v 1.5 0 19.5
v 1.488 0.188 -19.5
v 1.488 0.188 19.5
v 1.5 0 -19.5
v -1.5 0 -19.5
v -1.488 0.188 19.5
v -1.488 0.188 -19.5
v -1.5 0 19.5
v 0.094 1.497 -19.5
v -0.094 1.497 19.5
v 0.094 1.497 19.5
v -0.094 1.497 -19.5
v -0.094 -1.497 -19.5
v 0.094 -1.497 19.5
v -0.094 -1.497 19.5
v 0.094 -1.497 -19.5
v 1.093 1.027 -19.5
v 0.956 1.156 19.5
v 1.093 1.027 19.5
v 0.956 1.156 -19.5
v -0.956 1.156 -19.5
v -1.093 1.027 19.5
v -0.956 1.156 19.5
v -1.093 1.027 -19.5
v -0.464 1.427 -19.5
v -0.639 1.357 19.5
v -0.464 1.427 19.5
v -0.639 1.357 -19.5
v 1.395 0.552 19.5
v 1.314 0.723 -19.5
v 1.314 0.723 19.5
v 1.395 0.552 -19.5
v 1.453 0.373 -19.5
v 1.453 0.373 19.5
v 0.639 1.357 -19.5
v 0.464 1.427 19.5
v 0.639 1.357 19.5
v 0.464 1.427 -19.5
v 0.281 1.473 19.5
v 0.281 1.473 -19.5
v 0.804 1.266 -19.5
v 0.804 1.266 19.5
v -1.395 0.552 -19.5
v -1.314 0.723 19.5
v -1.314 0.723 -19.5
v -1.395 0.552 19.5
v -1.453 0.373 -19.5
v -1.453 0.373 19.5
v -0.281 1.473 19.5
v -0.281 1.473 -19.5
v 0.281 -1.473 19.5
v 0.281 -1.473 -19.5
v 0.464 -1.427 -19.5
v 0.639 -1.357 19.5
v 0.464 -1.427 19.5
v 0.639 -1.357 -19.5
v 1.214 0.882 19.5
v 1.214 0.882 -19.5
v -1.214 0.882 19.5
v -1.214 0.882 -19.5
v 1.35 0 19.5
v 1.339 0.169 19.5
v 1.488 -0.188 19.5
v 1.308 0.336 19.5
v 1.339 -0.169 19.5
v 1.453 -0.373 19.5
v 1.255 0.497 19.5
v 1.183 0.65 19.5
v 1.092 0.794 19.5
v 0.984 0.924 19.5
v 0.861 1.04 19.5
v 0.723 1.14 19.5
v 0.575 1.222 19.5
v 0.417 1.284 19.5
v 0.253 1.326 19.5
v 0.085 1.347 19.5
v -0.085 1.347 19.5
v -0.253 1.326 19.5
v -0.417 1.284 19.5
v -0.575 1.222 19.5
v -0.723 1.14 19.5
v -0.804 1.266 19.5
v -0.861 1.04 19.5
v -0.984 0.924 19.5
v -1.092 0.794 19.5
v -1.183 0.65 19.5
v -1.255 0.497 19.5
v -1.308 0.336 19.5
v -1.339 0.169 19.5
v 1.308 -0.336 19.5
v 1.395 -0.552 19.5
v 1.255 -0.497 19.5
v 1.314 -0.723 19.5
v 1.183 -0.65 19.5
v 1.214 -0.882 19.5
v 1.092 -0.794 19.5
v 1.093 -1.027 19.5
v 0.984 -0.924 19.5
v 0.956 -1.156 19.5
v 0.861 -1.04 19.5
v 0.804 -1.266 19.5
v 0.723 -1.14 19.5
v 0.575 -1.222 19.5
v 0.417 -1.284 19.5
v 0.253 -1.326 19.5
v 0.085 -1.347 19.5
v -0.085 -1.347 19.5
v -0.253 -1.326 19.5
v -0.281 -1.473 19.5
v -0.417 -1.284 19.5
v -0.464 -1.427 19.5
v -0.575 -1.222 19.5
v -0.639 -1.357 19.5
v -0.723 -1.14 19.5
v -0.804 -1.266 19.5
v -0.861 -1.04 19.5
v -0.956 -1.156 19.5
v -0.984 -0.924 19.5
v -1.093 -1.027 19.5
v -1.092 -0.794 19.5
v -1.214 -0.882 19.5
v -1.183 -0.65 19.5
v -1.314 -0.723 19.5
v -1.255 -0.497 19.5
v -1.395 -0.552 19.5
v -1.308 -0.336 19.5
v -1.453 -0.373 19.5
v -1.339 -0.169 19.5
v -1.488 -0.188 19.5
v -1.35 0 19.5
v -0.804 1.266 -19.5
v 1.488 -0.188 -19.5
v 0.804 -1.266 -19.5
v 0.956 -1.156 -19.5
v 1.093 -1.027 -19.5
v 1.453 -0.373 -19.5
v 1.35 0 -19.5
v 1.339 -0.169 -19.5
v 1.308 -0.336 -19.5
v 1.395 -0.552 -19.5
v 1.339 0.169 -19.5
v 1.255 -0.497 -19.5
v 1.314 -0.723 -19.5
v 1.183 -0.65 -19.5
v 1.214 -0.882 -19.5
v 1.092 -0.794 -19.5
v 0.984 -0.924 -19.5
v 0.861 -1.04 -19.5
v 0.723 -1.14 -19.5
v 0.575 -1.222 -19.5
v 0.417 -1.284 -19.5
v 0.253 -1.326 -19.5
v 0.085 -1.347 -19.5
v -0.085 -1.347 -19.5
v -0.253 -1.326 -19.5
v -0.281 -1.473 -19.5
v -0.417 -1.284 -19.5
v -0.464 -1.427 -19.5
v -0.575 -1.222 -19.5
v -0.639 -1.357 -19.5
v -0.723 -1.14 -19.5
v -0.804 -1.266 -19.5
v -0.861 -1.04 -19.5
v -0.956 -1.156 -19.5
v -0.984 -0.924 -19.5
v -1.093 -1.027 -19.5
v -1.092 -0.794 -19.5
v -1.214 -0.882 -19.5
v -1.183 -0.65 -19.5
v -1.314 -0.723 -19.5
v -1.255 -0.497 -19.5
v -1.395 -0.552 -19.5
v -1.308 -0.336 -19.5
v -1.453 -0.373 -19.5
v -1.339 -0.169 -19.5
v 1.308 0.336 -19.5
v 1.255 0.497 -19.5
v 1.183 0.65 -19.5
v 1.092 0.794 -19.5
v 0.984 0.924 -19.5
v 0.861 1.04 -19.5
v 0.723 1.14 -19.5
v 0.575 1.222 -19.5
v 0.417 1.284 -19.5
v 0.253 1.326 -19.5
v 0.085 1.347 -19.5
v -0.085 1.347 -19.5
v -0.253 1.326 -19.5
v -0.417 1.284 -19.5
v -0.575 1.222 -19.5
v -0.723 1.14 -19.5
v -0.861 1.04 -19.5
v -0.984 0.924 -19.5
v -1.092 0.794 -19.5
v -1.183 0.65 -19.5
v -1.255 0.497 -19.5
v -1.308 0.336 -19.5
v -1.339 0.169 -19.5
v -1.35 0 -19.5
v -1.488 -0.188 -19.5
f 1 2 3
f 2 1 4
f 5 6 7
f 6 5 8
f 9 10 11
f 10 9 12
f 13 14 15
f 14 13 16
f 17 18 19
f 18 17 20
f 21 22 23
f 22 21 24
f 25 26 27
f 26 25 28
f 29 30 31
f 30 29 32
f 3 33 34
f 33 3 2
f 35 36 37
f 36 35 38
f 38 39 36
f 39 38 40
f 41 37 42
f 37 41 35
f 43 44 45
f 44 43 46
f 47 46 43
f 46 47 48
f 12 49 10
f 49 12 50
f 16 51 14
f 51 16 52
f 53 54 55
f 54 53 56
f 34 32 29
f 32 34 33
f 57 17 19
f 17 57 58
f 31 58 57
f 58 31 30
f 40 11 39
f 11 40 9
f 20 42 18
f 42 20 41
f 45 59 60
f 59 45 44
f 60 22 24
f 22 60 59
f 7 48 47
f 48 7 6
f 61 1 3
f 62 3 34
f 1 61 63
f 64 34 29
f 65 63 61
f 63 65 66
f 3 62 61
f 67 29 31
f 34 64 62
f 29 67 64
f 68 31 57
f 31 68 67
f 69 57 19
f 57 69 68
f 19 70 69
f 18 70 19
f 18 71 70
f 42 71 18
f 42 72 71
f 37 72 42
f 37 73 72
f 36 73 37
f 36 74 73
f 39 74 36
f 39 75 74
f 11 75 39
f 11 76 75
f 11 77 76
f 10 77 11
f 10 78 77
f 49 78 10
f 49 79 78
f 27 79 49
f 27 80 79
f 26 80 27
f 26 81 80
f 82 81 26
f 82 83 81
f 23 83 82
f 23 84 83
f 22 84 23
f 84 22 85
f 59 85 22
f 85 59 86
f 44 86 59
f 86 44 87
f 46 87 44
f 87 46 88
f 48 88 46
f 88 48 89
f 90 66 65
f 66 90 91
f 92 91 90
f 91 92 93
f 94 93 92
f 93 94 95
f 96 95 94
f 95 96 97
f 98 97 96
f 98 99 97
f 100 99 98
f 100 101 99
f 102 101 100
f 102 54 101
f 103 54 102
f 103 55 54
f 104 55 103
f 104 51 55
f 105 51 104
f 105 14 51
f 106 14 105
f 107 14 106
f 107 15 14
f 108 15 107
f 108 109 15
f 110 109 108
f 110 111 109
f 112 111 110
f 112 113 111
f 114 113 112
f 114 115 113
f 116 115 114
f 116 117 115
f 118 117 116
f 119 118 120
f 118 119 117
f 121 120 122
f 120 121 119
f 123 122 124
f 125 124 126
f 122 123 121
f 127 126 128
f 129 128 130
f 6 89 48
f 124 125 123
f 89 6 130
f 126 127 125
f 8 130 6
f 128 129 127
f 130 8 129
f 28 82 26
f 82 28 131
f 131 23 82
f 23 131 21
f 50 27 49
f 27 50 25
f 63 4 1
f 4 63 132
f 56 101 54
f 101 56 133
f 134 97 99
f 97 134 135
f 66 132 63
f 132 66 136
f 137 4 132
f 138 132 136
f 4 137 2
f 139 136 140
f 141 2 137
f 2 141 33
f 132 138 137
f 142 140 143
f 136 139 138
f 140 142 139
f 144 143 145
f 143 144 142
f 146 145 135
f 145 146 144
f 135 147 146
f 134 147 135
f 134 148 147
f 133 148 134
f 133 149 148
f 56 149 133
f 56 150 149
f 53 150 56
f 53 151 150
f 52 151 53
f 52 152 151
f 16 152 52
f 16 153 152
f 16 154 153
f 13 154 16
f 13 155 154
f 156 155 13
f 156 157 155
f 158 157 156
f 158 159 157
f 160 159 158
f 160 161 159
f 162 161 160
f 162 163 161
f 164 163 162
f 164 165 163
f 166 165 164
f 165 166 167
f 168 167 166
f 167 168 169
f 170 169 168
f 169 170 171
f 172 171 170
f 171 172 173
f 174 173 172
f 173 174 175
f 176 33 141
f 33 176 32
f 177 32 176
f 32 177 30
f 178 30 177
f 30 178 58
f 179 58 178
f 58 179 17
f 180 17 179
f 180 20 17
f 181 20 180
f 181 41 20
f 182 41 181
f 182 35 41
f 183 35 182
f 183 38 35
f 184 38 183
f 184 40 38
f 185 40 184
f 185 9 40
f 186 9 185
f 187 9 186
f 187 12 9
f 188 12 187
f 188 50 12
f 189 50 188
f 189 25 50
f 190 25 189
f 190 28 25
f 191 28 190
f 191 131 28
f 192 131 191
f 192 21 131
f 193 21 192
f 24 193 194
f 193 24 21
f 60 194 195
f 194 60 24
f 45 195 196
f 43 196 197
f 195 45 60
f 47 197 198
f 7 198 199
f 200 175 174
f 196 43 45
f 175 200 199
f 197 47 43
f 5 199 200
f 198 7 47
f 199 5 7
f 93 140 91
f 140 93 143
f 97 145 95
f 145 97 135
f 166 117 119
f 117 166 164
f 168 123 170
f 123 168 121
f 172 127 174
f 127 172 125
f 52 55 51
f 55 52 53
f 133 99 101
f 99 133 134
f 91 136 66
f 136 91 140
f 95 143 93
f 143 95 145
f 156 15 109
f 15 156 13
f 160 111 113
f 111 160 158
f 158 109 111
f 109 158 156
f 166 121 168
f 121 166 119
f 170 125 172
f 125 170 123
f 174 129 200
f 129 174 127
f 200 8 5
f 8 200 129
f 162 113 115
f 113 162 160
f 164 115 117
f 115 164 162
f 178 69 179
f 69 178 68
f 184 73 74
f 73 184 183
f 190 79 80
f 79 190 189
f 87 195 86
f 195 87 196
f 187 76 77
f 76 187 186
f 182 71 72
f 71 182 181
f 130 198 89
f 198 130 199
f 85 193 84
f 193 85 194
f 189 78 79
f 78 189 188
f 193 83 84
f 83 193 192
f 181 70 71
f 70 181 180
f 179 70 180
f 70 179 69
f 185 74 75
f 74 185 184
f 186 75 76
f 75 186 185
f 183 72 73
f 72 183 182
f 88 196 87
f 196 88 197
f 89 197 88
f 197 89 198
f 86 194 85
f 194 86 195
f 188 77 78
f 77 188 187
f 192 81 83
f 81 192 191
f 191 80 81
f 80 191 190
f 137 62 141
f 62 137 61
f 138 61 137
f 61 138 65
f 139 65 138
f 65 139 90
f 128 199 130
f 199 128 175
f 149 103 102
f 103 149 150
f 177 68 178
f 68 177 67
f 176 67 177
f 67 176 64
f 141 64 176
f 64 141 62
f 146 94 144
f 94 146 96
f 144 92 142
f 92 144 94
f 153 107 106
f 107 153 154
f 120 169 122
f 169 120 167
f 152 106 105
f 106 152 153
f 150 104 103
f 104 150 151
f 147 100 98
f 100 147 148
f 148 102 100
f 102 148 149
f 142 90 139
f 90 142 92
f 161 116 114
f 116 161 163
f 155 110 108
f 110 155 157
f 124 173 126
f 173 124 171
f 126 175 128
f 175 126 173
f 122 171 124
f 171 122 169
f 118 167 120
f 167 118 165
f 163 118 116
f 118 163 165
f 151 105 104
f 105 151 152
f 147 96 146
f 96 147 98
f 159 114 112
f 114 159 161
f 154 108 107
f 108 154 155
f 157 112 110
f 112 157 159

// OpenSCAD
$fn = 50;


difference() {
	union() {
		translate(v = [0, 0, -19.5000000000]) {
			cylinder(h = 39, r = 1.5000000000);
		}
	}
	union() {
		translate(v = [0, 0, -100.0000000000]) {
			cylinder(h = 200, r = 1.3500000000);
		}
	}
}
